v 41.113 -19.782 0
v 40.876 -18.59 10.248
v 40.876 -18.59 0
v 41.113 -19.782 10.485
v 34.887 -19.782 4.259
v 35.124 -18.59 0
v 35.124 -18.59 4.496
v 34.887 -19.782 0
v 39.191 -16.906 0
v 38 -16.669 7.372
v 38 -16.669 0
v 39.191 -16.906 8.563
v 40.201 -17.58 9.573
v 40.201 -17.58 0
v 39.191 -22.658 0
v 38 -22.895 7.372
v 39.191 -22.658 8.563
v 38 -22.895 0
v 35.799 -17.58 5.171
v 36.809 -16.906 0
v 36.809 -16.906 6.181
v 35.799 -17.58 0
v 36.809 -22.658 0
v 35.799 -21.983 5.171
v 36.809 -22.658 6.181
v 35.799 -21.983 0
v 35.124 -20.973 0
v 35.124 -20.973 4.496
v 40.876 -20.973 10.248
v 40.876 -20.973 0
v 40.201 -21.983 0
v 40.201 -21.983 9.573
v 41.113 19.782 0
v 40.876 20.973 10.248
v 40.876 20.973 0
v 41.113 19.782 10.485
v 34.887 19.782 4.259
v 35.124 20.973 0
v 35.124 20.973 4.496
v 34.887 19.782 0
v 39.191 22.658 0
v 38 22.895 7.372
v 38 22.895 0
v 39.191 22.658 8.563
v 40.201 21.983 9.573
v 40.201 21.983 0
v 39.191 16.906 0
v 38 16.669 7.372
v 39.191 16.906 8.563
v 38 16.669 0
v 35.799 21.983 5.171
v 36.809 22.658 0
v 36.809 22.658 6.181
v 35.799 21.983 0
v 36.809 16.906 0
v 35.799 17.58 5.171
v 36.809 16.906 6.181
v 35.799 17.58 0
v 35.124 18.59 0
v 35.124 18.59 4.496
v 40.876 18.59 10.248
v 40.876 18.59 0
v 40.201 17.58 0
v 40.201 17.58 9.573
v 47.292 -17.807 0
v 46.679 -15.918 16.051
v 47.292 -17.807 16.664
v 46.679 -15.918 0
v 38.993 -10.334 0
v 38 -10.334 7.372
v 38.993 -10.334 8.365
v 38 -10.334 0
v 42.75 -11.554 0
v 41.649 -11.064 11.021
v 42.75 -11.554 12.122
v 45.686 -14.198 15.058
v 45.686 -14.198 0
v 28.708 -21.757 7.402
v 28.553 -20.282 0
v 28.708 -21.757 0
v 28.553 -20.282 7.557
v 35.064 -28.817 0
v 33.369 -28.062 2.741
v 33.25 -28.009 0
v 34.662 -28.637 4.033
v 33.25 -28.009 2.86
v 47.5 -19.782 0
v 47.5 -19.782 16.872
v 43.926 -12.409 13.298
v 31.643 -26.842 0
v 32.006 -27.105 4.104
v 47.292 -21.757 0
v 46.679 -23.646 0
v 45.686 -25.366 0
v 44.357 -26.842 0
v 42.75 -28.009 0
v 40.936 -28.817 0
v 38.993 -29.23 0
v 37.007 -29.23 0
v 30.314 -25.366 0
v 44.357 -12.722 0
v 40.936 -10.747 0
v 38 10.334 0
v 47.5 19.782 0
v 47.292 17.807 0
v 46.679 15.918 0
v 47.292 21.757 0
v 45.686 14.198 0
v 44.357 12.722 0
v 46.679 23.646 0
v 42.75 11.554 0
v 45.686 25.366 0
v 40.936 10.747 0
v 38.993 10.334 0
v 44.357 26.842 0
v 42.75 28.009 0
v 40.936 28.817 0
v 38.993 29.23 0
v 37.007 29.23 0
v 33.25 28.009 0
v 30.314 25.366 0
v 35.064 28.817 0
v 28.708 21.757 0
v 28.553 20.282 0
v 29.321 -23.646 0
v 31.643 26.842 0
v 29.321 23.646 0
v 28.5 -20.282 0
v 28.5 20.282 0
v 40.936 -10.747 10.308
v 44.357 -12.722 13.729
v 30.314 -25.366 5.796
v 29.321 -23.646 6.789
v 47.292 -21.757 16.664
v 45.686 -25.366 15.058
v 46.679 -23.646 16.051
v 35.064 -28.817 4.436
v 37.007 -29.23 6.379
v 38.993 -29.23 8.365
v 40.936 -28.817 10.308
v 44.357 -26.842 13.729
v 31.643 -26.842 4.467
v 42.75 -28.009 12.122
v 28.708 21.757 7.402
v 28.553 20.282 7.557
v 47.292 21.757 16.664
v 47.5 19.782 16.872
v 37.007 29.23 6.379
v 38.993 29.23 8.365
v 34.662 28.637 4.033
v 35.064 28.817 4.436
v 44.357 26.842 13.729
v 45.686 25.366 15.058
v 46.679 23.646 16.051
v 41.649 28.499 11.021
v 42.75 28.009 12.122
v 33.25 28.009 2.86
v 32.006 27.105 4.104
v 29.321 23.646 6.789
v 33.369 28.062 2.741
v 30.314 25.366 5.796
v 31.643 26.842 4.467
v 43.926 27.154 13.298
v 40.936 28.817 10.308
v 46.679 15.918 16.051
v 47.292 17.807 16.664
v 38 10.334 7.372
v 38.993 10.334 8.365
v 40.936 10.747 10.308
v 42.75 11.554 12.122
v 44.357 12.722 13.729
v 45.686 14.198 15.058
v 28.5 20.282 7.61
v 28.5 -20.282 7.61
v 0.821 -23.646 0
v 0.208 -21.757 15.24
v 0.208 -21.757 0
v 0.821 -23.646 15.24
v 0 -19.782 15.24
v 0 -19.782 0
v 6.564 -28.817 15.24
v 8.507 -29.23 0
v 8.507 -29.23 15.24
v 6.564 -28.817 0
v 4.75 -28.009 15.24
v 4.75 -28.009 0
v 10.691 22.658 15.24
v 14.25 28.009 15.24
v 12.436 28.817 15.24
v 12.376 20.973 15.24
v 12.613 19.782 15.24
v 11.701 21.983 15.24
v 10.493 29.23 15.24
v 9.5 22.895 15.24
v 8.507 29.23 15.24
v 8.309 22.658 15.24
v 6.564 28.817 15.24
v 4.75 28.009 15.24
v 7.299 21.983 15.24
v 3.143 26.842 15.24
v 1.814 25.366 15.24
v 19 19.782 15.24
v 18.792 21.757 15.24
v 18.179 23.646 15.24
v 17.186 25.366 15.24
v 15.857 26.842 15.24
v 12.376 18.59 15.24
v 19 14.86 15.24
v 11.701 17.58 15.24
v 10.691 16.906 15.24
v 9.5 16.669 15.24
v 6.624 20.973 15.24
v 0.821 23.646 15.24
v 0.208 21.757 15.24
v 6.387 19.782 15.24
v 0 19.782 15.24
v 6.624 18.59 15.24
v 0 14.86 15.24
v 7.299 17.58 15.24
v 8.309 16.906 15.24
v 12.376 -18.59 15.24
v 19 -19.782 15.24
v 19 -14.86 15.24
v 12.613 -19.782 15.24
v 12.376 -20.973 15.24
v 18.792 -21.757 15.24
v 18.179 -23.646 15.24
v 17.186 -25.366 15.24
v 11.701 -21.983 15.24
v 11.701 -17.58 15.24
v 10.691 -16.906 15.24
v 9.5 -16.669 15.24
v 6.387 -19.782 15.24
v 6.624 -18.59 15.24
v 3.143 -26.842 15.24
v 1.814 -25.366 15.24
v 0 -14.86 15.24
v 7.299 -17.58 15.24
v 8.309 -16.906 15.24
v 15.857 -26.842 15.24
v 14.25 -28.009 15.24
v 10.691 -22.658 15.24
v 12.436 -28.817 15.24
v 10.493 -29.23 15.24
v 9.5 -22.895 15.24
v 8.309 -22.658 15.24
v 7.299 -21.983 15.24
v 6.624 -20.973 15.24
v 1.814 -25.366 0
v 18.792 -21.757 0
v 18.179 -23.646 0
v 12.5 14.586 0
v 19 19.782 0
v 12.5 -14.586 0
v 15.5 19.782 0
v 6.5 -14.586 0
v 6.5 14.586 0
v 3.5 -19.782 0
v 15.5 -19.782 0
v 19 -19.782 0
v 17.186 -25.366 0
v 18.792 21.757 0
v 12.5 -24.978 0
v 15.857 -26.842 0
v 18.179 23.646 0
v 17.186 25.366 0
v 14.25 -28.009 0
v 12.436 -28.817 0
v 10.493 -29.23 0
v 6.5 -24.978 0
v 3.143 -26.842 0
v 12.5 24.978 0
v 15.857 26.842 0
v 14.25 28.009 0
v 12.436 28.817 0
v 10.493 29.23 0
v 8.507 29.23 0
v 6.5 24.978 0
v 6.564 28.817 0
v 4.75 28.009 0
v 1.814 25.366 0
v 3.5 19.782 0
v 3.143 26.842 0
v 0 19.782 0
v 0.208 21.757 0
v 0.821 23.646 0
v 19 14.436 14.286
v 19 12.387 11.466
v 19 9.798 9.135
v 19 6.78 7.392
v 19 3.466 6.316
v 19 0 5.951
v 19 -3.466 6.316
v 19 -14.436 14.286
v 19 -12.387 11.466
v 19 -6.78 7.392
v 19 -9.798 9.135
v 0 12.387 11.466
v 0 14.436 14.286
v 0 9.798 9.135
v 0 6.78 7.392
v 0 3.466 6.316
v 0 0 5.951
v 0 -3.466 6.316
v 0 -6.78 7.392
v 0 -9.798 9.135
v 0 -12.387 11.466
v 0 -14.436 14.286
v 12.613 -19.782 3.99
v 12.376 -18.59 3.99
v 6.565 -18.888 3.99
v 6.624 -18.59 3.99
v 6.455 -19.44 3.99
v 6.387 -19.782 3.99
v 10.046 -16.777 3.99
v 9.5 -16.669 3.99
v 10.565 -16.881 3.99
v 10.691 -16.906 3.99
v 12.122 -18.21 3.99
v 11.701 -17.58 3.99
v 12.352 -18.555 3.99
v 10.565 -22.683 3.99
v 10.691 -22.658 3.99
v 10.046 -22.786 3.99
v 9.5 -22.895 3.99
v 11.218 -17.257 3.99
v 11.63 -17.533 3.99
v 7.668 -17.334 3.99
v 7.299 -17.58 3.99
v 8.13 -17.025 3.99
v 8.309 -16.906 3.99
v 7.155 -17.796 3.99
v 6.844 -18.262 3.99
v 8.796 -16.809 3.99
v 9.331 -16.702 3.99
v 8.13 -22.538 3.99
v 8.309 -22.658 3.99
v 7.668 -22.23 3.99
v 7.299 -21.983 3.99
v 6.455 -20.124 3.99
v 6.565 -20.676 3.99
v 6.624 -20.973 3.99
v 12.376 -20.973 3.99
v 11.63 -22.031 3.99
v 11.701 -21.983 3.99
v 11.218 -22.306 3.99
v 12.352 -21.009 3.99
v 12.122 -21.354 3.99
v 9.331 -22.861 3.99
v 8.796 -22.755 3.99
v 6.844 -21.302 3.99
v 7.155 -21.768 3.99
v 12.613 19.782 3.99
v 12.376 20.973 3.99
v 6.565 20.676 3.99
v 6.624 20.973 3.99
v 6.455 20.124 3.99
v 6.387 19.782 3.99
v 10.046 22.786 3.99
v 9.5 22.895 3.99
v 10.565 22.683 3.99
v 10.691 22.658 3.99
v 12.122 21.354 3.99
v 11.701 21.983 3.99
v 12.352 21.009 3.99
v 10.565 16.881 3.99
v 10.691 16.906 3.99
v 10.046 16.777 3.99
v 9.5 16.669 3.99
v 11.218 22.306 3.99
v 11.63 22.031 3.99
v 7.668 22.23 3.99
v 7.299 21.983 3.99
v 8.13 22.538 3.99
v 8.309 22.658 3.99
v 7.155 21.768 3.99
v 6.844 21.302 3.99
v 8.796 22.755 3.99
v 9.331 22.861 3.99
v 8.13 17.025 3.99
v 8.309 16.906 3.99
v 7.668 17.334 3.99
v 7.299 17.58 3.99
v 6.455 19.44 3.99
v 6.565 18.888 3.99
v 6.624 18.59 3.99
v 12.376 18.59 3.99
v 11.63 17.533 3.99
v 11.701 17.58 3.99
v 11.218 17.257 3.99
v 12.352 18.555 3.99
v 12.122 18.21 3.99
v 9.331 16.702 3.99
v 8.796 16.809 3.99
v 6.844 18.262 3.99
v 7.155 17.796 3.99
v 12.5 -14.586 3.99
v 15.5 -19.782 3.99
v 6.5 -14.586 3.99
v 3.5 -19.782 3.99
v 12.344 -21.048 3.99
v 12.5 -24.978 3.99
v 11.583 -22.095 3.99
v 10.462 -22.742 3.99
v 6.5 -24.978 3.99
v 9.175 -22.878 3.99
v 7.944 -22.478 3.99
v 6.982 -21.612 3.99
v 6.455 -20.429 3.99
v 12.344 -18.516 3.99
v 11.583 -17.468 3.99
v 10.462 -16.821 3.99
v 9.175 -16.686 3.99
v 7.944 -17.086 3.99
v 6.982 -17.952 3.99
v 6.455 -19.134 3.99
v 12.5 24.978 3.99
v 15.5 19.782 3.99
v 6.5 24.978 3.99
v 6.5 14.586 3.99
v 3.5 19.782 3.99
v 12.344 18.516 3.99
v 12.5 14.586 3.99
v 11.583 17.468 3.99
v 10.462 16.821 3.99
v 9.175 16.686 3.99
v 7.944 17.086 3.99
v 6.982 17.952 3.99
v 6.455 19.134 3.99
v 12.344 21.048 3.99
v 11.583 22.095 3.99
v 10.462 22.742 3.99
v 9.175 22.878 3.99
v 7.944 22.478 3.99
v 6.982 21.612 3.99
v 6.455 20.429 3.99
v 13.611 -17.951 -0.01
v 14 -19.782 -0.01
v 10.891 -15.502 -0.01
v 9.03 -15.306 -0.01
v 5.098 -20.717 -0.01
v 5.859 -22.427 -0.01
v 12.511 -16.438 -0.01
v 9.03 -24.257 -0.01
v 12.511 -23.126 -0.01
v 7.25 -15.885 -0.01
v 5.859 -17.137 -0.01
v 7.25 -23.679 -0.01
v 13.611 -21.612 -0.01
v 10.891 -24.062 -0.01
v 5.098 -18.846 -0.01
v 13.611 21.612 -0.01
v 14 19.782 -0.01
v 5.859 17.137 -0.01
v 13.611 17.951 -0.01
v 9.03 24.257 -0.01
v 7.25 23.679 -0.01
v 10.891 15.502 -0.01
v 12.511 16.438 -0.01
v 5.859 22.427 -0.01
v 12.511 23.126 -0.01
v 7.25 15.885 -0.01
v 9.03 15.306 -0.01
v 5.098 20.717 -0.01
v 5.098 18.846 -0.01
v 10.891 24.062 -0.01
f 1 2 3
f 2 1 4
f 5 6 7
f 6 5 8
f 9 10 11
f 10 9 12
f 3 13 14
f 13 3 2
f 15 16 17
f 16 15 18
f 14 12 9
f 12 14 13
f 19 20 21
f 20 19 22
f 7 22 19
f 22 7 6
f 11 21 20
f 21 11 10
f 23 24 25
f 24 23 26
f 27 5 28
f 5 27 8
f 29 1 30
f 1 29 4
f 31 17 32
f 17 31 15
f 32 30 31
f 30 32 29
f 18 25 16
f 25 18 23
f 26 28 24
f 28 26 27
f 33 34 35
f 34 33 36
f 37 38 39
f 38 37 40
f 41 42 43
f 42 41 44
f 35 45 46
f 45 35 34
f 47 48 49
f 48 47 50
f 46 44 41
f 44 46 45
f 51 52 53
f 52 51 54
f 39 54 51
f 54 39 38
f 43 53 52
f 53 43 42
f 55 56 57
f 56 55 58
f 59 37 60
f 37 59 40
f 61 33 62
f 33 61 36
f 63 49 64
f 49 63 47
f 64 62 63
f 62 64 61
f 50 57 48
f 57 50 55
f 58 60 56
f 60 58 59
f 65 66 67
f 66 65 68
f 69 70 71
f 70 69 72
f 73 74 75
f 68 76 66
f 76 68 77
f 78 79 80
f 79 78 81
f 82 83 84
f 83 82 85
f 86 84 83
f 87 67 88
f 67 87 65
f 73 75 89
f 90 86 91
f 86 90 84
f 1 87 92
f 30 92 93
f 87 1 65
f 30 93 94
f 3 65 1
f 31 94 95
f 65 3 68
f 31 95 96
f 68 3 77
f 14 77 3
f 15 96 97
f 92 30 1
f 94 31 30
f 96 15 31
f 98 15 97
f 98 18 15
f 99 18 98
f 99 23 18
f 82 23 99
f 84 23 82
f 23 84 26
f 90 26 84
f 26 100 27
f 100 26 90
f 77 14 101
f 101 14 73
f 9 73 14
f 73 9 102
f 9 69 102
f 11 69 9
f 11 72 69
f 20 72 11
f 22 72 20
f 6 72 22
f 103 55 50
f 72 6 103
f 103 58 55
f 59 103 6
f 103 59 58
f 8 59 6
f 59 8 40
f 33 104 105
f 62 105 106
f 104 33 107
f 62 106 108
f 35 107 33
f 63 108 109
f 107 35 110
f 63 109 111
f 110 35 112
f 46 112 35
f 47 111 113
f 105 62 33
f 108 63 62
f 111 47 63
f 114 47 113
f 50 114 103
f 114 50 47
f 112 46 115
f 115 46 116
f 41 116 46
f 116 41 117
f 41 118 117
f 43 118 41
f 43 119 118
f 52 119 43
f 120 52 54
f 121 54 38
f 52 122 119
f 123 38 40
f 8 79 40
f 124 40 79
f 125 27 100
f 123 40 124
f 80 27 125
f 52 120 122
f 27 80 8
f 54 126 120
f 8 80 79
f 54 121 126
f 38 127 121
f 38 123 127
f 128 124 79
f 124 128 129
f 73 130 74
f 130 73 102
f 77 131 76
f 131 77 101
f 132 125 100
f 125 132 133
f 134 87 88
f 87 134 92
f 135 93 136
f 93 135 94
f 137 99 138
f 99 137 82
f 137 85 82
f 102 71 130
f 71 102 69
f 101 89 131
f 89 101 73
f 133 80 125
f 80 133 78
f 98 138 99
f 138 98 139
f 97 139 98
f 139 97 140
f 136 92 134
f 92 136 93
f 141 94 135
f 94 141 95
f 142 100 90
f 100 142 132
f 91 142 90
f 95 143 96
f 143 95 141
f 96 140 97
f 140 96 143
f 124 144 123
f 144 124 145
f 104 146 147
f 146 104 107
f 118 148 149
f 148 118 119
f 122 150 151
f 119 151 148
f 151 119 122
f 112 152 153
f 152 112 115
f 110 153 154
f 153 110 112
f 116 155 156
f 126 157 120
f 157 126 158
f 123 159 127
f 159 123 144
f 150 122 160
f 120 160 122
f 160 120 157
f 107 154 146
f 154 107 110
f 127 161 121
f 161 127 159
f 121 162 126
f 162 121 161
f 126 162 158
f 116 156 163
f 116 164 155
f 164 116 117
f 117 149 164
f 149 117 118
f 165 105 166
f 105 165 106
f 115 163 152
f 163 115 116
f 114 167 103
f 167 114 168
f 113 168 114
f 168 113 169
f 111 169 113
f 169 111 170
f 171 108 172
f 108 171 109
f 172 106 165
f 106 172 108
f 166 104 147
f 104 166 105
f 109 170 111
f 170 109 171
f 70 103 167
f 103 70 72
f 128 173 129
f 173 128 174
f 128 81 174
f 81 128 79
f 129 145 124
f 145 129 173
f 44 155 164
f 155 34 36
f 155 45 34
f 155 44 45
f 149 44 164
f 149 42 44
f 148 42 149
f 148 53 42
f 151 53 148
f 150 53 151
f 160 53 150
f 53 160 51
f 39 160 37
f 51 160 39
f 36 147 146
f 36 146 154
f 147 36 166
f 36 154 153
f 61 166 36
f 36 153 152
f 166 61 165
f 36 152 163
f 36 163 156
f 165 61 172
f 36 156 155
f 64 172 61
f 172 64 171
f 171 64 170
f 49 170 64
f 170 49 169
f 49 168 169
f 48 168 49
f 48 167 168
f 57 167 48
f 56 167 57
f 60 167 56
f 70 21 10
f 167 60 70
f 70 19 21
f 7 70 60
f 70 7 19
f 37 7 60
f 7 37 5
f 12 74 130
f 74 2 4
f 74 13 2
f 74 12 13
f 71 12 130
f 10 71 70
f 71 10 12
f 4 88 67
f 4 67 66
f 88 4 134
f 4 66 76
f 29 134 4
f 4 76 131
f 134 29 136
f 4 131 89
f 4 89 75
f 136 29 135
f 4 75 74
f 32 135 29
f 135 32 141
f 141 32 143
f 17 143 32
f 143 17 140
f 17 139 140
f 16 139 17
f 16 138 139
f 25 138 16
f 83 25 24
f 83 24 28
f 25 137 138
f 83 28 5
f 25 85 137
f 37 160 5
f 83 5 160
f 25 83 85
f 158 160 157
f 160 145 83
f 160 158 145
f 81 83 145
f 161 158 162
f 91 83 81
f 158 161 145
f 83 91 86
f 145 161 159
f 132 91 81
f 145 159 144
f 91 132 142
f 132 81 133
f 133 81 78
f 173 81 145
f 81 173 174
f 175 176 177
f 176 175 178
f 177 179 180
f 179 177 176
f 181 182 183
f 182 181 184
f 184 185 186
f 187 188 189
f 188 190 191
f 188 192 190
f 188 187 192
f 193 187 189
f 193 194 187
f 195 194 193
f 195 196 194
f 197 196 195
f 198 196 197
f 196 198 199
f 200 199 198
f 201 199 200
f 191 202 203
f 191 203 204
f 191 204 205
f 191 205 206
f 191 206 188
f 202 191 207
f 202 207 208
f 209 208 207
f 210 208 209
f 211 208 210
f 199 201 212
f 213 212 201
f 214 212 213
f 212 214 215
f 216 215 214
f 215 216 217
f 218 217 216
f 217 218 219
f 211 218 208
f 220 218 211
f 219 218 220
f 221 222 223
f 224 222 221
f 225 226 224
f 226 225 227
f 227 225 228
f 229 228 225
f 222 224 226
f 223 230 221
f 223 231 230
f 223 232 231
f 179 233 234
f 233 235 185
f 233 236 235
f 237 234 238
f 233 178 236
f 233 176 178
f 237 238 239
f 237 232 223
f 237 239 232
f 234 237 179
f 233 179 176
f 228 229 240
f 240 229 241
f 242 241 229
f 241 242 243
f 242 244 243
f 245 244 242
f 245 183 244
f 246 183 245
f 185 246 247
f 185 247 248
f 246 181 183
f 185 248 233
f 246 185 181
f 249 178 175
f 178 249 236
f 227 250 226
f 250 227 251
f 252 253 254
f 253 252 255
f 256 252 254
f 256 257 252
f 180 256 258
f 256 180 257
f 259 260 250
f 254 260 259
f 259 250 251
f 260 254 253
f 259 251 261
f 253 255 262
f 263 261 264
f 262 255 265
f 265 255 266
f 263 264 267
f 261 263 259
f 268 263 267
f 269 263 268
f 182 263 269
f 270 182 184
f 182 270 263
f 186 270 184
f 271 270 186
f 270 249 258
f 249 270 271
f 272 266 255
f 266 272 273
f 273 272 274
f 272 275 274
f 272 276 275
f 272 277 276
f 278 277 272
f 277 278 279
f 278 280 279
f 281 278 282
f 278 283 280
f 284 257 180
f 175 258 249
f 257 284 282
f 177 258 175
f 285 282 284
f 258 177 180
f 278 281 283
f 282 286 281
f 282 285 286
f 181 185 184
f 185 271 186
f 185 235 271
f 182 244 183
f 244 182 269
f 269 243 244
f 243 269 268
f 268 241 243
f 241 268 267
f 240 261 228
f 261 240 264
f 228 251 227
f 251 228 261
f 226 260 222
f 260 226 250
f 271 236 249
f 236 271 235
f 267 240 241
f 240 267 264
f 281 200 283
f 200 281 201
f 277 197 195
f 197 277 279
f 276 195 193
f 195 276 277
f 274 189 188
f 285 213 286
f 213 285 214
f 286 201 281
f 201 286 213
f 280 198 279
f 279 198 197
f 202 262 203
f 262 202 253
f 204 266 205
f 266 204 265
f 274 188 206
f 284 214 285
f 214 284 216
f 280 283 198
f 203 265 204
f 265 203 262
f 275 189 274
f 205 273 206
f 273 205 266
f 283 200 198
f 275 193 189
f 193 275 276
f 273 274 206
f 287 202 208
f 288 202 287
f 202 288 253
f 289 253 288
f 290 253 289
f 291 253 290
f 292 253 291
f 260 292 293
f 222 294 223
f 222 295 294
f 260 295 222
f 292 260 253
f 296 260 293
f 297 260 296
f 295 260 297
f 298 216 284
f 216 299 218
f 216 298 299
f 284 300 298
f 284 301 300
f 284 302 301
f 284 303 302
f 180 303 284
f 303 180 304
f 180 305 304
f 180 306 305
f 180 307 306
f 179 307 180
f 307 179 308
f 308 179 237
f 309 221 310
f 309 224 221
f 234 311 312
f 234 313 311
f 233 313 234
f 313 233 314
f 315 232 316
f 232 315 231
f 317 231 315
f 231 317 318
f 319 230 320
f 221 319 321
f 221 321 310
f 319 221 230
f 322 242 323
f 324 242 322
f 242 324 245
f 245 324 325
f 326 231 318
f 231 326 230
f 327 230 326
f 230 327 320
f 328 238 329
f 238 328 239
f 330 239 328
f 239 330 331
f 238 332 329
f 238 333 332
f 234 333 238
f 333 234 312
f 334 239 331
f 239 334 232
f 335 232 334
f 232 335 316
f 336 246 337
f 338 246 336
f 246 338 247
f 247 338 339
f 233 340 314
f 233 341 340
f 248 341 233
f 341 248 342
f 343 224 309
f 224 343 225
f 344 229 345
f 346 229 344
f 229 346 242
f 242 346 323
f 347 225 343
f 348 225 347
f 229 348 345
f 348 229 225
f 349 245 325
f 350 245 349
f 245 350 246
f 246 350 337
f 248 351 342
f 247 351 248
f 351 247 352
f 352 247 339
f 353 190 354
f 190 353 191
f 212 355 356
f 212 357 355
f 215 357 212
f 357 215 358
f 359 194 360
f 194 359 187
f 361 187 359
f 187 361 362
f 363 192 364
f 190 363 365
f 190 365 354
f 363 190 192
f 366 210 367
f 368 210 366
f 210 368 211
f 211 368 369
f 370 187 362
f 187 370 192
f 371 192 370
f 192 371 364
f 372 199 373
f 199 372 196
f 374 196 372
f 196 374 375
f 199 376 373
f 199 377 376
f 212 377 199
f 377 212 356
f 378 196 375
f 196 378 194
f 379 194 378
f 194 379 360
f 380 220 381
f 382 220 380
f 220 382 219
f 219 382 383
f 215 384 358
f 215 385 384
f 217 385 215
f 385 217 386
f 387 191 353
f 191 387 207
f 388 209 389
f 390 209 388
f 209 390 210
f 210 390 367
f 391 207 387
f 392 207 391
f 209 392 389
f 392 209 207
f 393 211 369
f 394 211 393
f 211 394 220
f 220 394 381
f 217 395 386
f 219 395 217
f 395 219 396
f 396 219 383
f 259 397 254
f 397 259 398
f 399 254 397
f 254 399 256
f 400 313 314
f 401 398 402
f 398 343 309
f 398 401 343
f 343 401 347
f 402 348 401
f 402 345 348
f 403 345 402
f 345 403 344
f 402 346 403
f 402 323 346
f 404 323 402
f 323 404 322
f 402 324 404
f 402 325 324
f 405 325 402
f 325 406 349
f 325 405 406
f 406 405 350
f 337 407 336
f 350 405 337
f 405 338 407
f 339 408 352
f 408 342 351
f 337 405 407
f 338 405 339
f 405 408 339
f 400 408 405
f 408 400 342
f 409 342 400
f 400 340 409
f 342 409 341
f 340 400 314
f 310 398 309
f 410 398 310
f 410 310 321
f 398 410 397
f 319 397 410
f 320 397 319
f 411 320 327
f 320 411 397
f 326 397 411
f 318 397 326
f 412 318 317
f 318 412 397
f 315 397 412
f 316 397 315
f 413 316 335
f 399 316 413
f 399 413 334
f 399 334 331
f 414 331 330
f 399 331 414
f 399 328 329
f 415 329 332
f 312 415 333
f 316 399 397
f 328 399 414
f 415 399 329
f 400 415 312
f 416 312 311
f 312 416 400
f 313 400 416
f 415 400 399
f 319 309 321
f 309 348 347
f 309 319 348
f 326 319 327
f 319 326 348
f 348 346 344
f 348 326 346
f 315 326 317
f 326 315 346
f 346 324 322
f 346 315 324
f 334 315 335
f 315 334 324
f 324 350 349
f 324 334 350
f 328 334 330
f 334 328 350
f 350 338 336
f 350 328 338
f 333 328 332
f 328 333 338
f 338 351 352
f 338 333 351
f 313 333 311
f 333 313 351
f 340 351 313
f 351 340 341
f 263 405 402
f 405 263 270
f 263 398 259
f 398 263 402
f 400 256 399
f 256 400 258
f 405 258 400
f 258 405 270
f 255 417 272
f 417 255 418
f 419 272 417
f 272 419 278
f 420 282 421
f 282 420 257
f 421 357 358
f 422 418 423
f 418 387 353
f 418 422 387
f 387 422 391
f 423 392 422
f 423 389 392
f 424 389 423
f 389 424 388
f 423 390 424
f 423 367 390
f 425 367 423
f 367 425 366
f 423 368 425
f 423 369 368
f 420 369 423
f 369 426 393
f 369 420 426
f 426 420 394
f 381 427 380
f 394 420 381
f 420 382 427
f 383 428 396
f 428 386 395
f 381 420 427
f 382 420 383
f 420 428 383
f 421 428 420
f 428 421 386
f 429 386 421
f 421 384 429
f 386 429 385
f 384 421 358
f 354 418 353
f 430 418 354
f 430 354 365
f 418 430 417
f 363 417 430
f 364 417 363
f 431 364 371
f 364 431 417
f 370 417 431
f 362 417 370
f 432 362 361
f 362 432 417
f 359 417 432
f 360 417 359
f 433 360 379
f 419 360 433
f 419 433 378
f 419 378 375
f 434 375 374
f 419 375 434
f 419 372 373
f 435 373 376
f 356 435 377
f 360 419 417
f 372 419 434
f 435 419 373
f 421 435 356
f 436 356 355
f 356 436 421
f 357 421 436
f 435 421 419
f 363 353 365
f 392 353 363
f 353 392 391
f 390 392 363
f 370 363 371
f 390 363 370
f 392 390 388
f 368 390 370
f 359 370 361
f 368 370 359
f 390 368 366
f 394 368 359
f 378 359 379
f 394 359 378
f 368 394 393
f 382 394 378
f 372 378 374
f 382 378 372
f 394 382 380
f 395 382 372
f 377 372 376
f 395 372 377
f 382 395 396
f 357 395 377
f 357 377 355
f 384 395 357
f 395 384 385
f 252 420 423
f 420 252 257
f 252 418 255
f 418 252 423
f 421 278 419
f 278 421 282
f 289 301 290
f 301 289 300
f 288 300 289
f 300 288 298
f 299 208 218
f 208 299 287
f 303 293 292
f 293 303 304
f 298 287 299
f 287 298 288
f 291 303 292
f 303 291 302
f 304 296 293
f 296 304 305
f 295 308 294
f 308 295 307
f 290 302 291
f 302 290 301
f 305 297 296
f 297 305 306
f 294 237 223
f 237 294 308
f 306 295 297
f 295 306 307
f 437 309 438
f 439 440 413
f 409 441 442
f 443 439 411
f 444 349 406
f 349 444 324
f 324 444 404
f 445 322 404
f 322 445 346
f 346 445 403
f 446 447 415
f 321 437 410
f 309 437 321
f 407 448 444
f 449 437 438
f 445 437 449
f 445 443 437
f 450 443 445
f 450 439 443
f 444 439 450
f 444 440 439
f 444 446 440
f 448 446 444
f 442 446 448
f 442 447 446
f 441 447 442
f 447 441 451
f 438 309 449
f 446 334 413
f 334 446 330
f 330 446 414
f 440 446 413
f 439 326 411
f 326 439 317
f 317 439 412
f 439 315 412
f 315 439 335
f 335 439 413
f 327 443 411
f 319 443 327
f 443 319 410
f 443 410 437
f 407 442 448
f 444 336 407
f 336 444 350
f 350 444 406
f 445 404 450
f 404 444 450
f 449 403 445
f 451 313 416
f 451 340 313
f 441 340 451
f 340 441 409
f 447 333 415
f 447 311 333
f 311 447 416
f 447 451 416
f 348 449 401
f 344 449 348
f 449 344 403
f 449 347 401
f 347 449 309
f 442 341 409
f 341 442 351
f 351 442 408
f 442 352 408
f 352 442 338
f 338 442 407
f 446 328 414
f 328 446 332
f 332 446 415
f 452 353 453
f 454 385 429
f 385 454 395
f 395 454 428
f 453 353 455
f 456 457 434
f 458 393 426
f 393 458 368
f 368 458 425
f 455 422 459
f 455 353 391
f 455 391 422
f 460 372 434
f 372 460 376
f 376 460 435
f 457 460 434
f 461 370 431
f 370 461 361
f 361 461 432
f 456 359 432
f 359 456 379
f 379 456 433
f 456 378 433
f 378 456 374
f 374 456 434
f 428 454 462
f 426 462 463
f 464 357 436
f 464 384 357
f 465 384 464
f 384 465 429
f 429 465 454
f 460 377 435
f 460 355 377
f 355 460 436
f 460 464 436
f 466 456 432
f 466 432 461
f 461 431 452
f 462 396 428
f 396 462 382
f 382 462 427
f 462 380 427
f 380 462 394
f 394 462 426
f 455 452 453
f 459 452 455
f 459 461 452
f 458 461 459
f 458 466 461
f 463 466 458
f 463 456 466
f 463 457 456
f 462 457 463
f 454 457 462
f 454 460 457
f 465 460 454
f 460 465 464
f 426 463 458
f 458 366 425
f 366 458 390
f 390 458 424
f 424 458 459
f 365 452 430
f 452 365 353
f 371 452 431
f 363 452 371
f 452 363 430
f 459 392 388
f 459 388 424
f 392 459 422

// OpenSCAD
mm=1;
in=25.4*mm;


pendulum_rad = (1+5/16)*in/2;

nut_rad = 6*mm; // MADE-UP NUMBER
nut_th  = 4*mm; // MADE-UP NUMBER

wood_piece_th = 6.90*mm;
wood_piece_width= 25.69*mm;
wood_piece_len = 102.62*mm;

bolt_radius = 0.190*in / 2; // this is for #10 - 24 bolts
bolt_clearance = 0.7*mm;      // wanna let it slop around quite a bit
bolt_head_radius = 5.5*mm; // MADE-UP NUMBER
bolt_len = 4*in; // pretty sure this is how long my bolts are

eps=0.01*mm;

hole_y_offset = pendulum_rad + bolt_radius + bolt_clearance;
hole_z_offset = 9.5*mm;

echo("the distance between the holes is", 2*hole_y_offset, "mm");

width_cheat = -5*mm;
front_plate_width = 2*hole_y_offset + 2*bolt_head_radius + 2*width_cheat;
front_plate_height = 2*hole_z_offset;
front_plate_depth = 1/sqrt(2)*wood_piece_width; // kinda artificial since we
// are going to be subtracting off a wood piece - just has to be deep enough to
// reach into the inside of the wood piece basically

front_plate_standoff = 0.3*in; // tweak this until it looks beefy

back_plate_standoff=front_plate_standoff;
back_plate_th = 2*back_plate_standoff;
pendulum_offset = 15*mm;


module wood_piece() {
    color("red")
    rotate([0,45,0])
    translate([-wood_piece_width,wood_piece_len/2,0])
    rotate([90,0,0])
    linear_extrude(height=wood_piece_len)
    polygon([[0,0], [0,wood_piece_th], [wood_piece_width,wood_piece_th],
            [wood_piece_width,0], [wood_piece_width/2,-wood_piece_width/2],
            [0,0]]);
    
}
*wood_piece();

// not actually a bolt - i'm including the clearance.  subtract this from a
// thing to get a hole that a bolt fits into
module bolt() {
    union() {
        translate([0,0,-eps])
        cylinder(r=bolt_radius+bolt_clearance, h=bolt_len+eps,$fn=16);
        difference(){
            sphere(bolt_head_radius);
            cylinder(r=2*bolt_head_radius,h=2*bolt_head_radius);
        }
    }
}
*bolt();

module bolt_assembly() {
    color("green")
    for(side=[-1,1]) {
        translate([eps+front_plate_standoff,0,hole_z_offset])
        rotate([0,-90,0])
        translate([0,side*hole_y_offset,0])
        bolt();
    }
}

module nut_assembly() {
    color("green")
    for(side=[-1,1]) {
        translate([back_plate_standoff+eps,0,hole_z_offset])
        rotate([0,-90,0])
        translate([0,side*hole_y_offset,0])
        cylinder(r=nut_rad,h=nut_th,$fn=6);
    }    
}

module front_plate() {
    translate([-front_plate_standoff,0,0])
    difference() {
        union(){
            translate([-front_plate_depth+front_plate_standoff,
                       -front_plate_width/2,0])
            cube([front_plate_depth, front_plate_width, front_plate_height/2]);
            for(side=[-1,1]) {
                translate([-front_plate_depth+front_plate_standoff,0,front_plate_height/2])
                rotate([0,90,0])
                translate([0,side*hole_y_offset,0])
                cylinder(r=front_plate_height/2,h=front_plate_depth);
            }
        }
        union(){
            bolt_assembly();

            translate([0,0,-eps])
            wood_piece();
            
        }
    }
}

module back_plate() {
    translate([-back_plate_standoff,0,0])
    union(){
        difference() {
    
            union(){
                translate([-back_plate_th+back_plate_standoff,-hole_y_offset,0])
                cube([back_plate_th, 2*hole_y_offset, 2*hole_z_offset]);
                for(side=[-1,1]) {
                    translate([-back_plate_th+back_plate_standoff,side*hole_y_offset,
                            hole_z_offset])
                    rotate([0,90,0])
                    cylinder(r=hole_z_offset,h=back_plate_th);
                }
    
            }
            union(){
                bolt_assembly();
                nut_assembly();
                color("red") //pendulum
                translate([-pendulum_offset,0,0])
                cylinder(r=pendulum_rad, h=6*in, center=true);
                
            }
        }
        color("pink")
        for(side=[-1,1]) { //support
            translate([back_plate_standoff+eps,0,hole_z_offset])
            rotate([0,-90,0])
            translate([0,side*hole_y_offset,0])
            cylinder(r1=0.75*nut_rad, r2=bolt_radius+bolt_clearance,h=nut_th);
        }
    }

}

rotate([0,90,0])
back_plate();

translate([3*hole_z_offset,0,0])
rotate([0,90,0])
front_plate();
